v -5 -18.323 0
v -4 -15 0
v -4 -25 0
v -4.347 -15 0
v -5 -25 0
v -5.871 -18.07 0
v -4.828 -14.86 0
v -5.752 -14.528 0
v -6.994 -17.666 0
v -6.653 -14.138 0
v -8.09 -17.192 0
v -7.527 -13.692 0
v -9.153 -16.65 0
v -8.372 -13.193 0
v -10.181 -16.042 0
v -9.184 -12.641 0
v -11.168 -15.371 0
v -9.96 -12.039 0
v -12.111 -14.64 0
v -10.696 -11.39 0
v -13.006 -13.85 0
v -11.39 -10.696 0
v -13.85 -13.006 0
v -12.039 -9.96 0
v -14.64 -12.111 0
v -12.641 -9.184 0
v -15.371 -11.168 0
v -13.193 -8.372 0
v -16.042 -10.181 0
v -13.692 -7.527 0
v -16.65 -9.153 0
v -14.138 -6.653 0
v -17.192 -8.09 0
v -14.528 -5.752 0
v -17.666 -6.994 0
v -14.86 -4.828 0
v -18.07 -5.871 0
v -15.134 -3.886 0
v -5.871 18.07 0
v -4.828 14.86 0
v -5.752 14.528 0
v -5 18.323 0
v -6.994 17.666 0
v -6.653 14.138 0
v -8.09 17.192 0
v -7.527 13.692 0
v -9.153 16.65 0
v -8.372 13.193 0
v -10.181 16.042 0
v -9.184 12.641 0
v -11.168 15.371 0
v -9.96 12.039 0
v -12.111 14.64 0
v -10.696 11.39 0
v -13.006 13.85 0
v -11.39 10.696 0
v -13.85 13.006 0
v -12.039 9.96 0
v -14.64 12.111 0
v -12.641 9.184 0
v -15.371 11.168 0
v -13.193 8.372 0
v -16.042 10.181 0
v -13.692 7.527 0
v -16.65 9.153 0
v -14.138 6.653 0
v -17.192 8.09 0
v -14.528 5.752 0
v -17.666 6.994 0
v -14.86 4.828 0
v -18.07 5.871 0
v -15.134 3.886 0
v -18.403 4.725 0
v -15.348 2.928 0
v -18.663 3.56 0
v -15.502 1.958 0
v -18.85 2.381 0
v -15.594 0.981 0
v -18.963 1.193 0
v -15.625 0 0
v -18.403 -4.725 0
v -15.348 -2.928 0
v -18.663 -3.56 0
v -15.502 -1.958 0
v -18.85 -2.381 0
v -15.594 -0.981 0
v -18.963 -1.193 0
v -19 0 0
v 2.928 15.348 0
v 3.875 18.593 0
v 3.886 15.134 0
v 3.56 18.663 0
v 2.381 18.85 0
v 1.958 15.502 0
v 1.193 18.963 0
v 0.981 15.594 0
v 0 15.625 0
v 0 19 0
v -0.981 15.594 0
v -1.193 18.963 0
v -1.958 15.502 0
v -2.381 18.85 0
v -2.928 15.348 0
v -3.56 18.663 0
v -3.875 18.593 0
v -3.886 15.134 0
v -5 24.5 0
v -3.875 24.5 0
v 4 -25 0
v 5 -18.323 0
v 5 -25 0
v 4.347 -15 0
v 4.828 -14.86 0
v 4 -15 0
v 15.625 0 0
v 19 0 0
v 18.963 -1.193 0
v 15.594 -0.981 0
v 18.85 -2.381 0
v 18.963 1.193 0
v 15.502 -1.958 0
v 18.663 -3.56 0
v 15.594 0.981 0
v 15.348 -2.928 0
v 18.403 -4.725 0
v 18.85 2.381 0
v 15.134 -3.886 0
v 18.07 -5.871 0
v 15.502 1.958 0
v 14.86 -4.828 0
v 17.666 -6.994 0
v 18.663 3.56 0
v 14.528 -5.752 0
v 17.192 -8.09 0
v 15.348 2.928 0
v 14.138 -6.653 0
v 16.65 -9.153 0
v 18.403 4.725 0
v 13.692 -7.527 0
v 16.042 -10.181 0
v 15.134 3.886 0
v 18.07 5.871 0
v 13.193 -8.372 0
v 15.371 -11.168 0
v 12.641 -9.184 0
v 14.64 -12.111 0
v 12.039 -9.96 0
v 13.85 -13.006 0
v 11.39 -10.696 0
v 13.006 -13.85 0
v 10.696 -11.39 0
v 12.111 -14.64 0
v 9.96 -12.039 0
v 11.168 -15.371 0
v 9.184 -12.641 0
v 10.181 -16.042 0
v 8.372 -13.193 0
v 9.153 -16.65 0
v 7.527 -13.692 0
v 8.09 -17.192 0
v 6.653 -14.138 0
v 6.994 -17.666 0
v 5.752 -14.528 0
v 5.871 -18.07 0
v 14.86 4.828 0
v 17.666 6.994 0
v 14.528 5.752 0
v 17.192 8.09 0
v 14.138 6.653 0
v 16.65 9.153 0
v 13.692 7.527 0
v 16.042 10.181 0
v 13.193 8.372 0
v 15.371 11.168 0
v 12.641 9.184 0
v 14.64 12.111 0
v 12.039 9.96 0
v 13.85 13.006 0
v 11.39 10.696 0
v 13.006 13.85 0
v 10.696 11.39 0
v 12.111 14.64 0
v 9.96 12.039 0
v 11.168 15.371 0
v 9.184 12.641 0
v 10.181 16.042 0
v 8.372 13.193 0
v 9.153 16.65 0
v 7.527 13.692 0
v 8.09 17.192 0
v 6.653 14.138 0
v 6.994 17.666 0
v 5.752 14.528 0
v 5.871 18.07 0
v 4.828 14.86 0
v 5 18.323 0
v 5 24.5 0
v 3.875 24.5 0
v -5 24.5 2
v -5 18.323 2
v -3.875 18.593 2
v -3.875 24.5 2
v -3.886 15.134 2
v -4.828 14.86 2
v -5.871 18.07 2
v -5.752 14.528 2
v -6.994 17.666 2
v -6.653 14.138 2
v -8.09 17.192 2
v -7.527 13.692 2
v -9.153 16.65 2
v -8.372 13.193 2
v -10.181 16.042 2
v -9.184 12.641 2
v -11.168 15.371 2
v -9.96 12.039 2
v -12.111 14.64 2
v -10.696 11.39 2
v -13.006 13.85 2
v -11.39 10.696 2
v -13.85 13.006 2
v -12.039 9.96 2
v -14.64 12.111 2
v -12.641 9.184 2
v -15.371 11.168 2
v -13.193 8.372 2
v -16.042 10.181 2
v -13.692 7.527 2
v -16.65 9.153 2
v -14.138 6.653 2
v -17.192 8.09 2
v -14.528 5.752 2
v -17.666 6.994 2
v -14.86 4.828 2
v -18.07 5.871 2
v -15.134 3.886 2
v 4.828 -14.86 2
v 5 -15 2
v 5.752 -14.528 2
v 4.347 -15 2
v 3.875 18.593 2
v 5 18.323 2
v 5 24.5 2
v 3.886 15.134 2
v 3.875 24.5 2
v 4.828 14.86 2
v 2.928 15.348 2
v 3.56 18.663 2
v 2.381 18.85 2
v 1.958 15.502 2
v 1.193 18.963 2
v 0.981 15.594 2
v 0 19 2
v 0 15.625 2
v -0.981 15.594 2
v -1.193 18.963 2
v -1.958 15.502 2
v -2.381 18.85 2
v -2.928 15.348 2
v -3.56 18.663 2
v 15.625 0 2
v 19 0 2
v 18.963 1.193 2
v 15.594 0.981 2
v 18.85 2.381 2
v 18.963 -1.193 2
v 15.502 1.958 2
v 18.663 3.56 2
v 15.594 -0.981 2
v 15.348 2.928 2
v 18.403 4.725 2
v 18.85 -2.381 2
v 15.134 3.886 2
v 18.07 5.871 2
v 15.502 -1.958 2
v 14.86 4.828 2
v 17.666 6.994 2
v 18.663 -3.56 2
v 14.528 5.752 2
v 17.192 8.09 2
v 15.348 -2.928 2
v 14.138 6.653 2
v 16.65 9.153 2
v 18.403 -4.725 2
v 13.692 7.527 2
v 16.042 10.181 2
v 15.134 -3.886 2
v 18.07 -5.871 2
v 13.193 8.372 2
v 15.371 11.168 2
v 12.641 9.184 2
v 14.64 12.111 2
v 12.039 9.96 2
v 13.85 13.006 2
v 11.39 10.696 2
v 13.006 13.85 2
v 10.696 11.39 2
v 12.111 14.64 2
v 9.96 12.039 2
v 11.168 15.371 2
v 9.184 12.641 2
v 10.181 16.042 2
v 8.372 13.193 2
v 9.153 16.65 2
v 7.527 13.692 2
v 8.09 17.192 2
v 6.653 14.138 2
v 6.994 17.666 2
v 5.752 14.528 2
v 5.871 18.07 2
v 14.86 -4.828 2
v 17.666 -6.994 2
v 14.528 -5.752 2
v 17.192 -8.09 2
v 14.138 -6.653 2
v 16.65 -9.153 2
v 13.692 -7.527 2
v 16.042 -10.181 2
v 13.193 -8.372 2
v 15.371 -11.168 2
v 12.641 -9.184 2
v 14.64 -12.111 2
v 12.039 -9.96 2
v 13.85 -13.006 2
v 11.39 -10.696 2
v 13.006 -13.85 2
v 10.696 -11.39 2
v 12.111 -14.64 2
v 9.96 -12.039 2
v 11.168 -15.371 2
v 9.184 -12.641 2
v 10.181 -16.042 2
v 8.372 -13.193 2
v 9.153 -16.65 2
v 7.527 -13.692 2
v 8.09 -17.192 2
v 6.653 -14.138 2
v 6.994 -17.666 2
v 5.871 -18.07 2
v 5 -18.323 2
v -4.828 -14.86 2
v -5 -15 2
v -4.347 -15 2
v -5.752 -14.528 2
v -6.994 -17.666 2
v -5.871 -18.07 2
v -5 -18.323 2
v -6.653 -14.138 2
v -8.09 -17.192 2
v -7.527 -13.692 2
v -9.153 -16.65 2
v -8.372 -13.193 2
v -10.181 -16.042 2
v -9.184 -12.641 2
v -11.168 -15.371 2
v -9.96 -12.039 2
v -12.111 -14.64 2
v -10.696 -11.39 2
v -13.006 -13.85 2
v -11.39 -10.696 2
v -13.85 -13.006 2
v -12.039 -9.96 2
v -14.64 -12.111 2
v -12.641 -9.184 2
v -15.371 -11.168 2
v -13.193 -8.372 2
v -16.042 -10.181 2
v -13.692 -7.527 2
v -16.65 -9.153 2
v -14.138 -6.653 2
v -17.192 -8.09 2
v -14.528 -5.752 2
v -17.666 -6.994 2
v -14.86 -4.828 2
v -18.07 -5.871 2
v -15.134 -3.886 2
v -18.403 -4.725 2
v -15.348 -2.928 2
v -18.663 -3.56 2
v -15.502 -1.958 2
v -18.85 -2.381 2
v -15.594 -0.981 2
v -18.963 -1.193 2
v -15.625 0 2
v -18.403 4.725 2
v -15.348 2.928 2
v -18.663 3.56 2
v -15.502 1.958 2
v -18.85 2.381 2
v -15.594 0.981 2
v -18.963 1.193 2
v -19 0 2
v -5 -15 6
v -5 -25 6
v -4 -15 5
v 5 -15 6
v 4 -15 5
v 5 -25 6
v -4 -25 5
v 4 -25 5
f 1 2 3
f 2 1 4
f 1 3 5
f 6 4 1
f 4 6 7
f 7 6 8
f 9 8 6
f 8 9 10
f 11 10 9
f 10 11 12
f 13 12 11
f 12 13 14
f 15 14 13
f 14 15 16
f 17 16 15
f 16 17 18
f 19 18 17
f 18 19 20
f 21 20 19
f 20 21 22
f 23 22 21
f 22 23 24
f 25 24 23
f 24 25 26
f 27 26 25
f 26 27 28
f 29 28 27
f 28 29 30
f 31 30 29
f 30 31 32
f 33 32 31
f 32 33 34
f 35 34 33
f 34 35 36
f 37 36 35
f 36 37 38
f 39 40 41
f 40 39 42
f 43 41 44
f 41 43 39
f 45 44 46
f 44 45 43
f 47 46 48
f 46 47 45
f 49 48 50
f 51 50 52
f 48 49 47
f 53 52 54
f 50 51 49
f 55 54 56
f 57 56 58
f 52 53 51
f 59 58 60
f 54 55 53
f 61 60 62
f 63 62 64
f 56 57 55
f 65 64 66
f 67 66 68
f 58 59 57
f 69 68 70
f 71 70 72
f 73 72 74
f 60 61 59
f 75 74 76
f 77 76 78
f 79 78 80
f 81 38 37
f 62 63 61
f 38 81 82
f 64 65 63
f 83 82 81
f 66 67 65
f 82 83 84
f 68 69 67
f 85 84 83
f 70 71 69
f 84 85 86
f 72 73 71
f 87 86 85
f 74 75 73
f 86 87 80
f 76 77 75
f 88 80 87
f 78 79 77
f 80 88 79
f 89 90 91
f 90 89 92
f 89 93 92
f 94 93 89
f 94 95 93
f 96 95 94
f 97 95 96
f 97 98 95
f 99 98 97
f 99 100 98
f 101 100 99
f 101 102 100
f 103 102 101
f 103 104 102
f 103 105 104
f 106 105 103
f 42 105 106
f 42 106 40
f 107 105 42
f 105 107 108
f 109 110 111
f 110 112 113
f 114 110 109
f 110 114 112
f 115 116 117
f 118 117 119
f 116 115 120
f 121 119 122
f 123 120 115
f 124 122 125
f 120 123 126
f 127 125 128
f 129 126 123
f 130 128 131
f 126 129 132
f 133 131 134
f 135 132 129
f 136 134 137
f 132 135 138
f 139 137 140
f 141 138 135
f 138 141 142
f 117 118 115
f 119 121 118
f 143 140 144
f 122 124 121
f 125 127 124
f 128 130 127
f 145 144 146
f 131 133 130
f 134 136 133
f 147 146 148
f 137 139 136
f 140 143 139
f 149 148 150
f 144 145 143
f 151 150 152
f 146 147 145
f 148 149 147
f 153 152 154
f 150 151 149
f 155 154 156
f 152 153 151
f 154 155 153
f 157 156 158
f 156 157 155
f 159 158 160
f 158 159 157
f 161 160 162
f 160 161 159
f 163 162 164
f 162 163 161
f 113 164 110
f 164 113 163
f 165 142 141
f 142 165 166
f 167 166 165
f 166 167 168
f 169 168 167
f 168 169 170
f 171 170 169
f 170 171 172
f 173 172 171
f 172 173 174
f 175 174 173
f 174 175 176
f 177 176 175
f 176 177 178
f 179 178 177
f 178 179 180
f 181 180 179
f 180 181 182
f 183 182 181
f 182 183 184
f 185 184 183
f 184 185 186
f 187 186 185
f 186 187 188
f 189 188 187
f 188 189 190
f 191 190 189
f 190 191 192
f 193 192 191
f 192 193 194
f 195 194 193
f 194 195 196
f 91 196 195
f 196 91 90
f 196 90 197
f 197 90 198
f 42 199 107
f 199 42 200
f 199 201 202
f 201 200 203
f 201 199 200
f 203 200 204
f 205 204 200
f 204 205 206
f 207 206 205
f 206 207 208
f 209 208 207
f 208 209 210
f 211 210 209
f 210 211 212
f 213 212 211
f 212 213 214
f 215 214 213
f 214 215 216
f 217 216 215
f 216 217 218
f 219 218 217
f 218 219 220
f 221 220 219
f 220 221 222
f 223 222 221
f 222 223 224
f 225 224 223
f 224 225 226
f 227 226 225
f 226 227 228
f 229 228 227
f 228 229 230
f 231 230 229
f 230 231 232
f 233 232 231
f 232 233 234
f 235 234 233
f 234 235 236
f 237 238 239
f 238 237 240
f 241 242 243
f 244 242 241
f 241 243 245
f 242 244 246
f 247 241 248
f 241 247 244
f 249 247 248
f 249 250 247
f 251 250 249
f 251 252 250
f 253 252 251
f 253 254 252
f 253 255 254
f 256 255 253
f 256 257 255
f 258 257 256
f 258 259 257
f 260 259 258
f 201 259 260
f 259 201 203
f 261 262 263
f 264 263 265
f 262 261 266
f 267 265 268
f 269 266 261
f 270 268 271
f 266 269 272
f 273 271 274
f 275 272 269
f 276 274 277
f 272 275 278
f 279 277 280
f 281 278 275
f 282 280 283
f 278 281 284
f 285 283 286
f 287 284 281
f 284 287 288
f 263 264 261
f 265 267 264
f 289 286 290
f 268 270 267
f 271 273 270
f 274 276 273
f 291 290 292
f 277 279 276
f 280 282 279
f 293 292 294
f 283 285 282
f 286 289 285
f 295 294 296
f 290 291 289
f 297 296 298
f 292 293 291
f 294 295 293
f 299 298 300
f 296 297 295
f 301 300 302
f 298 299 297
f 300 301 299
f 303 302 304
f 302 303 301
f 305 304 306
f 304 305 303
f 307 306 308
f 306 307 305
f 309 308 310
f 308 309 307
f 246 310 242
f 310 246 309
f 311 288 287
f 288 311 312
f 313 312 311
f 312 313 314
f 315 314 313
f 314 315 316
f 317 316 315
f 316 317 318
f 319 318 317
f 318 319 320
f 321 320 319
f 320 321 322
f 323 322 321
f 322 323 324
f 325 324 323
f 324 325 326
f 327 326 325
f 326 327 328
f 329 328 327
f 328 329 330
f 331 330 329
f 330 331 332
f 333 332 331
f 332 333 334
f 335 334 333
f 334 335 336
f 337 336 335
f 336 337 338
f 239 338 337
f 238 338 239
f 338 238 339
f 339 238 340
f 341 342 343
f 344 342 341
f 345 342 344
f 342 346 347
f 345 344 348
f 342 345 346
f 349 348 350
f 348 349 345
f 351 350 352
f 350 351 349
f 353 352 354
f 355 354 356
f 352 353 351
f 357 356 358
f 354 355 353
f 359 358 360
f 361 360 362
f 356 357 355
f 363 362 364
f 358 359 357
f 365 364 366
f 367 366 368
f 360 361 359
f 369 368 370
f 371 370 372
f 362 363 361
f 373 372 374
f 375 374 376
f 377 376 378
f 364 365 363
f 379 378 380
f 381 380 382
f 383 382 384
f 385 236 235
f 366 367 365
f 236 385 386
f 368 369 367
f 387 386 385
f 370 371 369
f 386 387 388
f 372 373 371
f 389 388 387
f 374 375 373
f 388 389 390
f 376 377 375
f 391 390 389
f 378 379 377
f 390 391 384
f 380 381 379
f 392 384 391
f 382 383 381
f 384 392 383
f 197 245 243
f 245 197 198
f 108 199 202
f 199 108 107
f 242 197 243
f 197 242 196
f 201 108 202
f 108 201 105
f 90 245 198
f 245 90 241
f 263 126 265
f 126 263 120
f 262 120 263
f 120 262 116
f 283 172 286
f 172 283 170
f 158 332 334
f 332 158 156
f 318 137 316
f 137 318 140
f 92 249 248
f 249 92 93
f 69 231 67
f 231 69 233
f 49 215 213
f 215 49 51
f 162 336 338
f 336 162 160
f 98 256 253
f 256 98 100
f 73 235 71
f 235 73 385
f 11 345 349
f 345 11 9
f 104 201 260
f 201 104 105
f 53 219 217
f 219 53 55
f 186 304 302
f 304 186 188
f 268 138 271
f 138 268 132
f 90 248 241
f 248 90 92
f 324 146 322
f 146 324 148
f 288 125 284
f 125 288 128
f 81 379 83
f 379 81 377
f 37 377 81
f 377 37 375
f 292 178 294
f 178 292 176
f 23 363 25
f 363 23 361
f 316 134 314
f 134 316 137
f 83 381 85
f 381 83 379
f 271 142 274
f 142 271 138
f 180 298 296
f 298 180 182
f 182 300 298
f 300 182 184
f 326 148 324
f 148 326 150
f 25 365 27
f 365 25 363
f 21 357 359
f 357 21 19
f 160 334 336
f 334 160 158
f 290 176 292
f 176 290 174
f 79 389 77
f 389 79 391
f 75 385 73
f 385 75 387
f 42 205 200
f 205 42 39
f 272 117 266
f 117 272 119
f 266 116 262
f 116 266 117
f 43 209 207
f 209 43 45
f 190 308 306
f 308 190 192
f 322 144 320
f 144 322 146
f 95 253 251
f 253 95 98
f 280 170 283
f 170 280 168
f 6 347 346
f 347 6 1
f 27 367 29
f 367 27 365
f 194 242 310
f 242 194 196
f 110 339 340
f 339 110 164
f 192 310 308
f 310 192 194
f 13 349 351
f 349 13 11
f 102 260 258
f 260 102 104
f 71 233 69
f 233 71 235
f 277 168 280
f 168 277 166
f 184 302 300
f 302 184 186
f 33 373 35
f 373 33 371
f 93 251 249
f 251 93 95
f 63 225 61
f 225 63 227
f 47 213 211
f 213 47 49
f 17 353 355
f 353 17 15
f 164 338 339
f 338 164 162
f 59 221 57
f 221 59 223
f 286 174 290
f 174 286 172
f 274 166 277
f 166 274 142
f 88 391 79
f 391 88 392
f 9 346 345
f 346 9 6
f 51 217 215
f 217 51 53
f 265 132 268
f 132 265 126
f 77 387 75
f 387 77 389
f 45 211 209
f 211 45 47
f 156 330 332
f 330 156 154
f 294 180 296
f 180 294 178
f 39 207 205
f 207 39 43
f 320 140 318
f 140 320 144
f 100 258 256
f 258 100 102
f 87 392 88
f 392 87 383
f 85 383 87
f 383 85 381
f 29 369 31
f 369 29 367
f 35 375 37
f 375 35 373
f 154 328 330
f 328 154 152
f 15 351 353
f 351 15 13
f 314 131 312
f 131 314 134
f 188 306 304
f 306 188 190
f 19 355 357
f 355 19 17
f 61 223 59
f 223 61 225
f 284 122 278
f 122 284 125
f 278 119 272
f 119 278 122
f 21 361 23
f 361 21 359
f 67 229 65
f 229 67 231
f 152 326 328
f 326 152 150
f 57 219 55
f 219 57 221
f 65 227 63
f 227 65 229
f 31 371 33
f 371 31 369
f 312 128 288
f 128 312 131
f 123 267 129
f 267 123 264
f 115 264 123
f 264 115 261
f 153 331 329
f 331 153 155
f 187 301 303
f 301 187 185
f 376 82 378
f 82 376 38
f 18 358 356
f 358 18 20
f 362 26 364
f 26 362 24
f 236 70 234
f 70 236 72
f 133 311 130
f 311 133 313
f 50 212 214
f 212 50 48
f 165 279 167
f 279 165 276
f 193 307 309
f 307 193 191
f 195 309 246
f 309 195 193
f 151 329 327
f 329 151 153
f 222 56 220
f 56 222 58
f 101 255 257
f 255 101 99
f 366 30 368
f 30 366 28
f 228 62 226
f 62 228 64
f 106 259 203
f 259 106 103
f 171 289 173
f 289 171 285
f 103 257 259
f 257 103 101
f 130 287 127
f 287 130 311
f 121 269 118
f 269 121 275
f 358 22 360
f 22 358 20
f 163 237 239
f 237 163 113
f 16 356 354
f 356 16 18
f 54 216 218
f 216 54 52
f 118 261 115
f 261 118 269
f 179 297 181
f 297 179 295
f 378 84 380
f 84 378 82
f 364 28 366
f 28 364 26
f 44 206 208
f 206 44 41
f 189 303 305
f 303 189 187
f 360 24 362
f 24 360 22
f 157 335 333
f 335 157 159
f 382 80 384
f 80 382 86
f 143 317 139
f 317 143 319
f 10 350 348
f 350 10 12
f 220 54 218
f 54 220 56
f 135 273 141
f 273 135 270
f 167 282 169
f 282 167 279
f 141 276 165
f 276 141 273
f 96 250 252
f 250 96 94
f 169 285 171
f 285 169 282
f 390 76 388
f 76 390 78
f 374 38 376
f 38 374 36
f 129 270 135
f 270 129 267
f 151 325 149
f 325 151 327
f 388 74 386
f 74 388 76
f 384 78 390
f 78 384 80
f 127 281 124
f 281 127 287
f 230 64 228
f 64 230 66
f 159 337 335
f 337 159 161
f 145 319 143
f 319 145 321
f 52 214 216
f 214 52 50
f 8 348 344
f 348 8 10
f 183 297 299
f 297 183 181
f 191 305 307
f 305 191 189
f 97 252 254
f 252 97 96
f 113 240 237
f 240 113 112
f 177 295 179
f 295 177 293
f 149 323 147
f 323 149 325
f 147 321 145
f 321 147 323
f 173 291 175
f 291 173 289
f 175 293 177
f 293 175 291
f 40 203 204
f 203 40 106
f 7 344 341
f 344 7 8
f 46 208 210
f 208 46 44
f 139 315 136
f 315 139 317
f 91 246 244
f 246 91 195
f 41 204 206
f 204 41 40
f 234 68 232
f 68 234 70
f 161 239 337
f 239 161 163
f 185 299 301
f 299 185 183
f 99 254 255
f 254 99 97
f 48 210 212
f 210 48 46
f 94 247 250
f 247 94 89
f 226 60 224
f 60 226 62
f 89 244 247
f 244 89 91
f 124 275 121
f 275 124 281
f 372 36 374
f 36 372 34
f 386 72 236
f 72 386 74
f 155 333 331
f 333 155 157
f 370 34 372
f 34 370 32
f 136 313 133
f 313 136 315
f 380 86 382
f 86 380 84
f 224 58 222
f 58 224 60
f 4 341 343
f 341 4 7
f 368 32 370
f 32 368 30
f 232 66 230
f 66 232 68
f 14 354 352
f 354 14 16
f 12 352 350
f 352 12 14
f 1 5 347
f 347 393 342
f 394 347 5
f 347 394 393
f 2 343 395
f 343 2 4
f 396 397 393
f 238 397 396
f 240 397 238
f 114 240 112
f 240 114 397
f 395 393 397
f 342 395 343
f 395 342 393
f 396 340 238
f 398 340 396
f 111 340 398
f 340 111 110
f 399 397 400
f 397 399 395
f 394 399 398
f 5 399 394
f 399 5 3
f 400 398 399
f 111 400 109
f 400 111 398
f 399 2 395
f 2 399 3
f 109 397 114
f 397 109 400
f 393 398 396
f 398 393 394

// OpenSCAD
/* 
BlueFruit "Snap on" Blast Sheild / Diffuser
Design by Greg Huber (Greg's Maker Corner)
Goal: Diffuse the neopixel lights without getting in the way of board components.
*/
$fn=100;
h=2;

translate([0,0,h/2])
{   difference()
    {
        cylinder(h=h, r=38/2, center=true);
        cylinder(h=h+.1, r=(38-6.75)/2, center=true);   
        
        translate([0,-19,-h/2])
        linear_extrude(h+.1)
        square([10,8], center=true);
    }
}



//JST Cut out / clip
translate([0,-20,0])
{
    difference()
    {
        linear_extrude(h+3)
        square([10,10],center=true);

        translate([0,0,0])
        linear_extrude(h+3.1)
        square([8,12],center=true);
    }
       //hat over JST
        translate([0,0,h+3])
        linear_extrude(h/2)
        square([10,10],center=true);
}




//USB Cut out / clip
translate([0,21,0])
difference()
{
    linear_extrude(h)
    square([10,7],center=true);

    translate([0,0,0])
    linear_extrude(h+.1)
    square([7.75,7],center=true);
}
